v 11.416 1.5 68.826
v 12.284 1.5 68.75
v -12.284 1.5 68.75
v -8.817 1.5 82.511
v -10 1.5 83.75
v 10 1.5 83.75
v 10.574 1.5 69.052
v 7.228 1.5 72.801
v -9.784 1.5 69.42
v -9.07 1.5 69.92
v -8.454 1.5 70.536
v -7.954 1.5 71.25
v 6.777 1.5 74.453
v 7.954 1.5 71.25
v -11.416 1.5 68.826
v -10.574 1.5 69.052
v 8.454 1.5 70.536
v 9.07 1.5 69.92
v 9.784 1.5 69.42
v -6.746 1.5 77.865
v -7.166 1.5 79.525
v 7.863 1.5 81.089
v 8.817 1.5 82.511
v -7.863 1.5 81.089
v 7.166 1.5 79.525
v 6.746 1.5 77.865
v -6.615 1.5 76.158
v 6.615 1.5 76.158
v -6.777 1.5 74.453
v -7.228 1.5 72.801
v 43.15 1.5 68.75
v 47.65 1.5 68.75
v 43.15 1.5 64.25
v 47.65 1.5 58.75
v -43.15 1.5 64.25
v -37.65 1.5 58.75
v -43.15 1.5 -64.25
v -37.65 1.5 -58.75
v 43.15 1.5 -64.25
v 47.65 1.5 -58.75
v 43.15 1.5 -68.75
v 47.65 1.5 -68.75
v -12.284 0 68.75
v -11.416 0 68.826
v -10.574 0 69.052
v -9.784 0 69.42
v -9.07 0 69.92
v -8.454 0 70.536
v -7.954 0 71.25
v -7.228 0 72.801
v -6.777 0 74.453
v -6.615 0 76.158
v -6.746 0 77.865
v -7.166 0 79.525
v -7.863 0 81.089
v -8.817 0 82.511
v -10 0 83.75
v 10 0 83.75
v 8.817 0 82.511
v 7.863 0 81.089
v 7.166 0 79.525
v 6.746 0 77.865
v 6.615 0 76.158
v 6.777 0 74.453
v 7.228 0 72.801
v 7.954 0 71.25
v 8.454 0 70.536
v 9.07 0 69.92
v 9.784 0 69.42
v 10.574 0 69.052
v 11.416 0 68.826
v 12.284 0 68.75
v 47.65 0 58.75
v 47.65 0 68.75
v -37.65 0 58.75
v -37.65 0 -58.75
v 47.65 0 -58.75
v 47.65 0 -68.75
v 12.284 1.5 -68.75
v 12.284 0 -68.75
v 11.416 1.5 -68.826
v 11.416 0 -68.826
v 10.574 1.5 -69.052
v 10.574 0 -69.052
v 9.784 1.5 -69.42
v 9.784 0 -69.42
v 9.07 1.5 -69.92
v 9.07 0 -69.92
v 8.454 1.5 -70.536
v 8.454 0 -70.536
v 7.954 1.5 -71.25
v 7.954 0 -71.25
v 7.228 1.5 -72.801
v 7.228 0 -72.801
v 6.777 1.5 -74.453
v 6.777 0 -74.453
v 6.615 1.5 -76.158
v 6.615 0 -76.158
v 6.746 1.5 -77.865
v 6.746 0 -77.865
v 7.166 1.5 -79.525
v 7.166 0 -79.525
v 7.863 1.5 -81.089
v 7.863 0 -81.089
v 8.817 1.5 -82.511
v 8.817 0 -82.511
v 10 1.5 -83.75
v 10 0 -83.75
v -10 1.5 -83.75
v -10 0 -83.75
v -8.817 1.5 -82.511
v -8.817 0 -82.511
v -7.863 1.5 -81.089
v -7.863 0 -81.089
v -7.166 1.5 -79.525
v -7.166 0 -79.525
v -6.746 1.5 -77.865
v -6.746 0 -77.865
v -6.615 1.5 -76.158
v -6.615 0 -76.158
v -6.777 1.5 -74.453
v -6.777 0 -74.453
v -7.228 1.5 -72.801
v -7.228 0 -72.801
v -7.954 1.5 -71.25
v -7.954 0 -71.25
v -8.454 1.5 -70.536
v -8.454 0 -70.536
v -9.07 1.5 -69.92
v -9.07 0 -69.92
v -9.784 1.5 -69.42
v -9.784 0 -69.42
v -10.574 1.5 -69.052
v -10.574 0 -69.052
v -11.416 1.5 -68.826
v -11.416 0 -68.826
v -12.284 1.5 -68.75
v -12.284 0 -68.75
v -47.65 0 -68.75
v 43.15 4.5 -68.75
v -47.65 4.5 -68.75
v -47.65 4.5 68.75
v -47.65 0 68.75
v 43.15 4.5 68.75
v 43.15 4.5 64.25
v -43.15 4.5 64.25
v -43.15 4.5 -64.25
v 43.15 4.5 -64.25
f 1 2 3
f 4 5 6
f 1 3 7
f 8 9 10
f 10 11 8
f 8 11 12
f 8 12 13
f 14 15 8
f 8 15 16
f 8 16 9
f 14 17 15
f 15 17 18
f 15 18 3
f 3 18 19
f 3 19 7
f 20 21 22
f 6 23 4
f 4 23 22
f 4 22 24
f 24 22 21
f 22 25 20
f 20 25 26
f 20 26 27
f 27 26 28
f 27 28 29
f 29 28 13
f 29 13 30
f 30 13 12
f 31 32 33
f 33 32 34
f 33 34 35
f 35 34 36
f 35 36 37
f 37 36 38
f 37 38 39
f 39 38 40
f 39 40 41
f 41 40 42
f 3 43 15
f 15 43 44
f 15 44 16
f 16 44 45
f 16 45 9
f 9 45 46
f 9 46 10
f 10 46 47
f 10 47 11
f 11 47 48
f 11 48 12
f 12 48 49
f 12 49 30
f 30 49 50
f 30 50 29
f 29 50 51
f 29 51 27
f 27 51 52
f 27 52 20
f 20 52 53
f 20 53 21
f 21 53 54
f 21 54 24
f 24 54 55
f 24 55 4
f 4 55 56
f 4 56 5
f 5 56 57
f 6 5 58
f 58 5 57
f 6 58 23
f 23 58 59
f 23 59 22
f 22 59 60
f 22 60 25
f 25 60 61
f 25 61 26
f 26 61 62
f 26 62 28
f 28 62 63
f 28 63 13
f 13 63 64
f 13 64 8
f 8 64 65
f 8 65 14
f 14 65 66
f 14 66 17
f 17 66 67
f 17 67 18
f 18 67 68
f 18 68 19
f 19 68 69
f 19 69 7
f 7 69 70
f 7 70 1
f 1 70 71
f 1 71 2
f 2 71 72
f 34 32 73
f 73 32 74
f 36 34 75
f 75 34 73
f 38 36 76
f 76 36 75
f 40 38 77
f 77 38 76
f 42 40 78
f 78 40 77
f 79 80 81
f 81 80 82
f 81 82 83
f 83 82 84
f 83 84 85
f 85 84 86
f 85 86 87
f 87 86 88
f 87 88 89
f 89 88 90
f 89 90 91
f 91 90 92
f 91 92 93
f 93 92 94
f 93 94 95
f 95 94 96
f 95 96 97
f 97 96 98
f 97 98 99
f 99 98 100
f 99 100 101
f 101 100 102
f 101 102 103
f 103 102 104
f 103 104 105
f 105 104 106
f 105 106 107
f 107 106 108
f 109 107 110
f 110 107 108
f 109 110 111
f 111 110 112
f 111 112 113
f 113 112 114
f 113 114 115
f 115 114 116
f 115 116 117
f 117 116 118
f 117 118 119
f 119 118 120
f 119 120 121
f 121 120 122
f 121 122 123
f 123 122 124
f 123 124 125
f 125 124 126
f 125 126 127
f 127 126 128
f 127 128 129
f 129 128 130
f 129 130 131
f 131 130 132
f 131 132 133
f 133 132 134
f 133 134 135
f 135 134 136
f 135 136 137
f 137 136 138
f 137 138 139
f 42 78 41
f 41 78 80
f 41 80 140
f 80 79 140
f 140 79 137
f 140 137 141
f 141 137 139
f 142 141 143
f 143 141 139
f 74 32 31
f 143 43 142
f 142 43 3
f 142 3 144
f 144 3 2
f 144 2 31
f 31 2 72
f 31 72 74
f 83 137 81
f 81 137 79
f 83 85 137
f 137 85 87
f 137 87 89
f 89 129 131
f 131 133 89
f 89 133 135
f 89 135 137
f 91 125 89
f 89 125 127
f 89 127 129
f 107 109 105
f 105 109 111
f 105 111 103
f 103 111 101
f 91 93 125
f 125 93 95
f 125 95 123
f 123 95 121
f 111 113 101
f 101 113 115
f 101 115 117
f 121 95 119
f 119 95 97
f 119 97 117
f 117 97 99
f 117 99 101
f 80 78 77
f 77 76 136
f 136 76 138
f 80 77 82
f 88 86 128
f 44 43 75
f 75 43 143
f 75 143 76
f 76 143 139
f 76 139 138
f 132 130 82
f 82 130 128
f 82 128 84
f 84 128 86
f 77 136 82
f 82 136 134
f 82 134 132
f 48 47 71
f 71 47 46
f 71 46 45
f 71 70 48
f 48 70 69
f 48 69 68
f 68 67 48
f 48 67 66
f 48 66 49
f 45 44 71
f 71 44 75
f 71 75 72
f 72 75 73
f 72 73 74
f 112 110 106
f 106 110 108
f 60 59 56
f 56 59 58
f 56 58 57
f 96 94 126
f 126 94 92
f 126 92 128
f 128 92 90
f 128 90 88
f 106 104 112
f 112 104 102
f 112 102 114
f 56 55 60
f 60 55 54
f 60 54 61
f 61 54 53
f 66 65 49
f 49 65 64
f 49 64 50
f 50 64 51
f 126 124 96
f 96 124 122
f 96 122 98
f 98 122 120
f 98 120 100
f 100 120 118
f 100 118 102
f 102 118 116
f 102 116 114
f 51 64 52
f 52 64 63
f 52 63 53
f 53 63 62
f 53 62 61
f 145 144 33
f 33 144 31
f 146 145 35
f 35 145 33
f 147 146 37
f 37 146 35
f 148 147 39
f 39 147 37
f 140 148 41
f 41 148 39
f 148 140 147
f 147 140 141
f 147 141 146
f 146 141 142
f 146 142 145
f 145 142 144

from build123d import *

# Parameters (mm, degrees)
SKETCH1_W           = 10
SKETCH1_H           = 117.5
BOSS_EXTRUDE1_DEPTH = 1.5
BOSS_EXTRUDE2_DEPTH = 3


with BuildPart() as part:
    # Sketch1 → Boss-Extrude1 (new body)
    with BuildSketch(Plane(origin=(0, 0, 0), x_dir=(1, 0, 0), z_dir=(0, 1, 0))):
        with BuildLine():
            ThreePointArc((-7.95412424, -71.25), (-9.784251259, -69.419872981), (-12.284251259, -68.75))
            Line((-12.284251259, -68.75), (-47.65, -68.75))
            Line((-47.65, -68.75), (-47.65, -58.75))
            Line((-47.65, -58.75), (47.65, -58.75))
            Line((47.65, -58.75), (47.65, -68.75))
            Line((47.65, -68.75), (12.284251259, -68.75))
            ThreePointArc((12.284251259, -68.75), (9.784251259, -69.419872981), (7.95412424, -71.25))
            ThreePointArc((7.95412424, -71.25), (6.745685452, -77.865209555), (10, -83.75))
            Line((10, -83.75), (-10, -83.75))
            ThreePointArc((-10, -83.75), (-6.745685452, -77.865209555), (-7.95412424, -71.25))
        make_face()
        with Locations((-42.65, 0)):
            Rectangle(SKETCH1_W, SKETCH1_H)
        with BuildLine():
            ThreePointArc((-7.95412424, 71.25), (-6.745685452, 77.865209555), (-10, 83.75))
            Line((-10, 83.75), (10, 83.75))
            ThreePointArc((10, 83.75), (6.745685452, 77.865209555), (7.95412424, 71.25))
            ThreePointArc((7.95412424, 71.25), (9.784251259, 69.419872981), (12.284251259, 68.75))
            Line((12.284251259, 68.75), (47.65, 68.75))
            Line((47.65, 68.75), (47.65, 58.75))
            Line((47.65, 58.75), (-47.65, 58.75))
            Line((-47.65, 58.75), (-47.65, 68.75))
            Line((-47.65, 68.75), (-12.284251259, 68.75))
            ThreePointArc((-12.284251259, 68.75), (-9.784251259, 69.419872981), (-7.95412424, 71.25))
        make_face()
    extrude(amount=BOSS_EXTRUDE1_DEPTH)

    # Sketch2 → Boss-Extrude2 (add)
    with BuildSketch(Plane(origin=(0, 1.5, 0), x_dir=(1, 0, 0), z_dir=(0, 1, 0))):
        Polygon((-43.15, 64.25), (43.15, 64.25), (43.15, 68.75), (12.284251259, 68.75), (-12.284251259, 68.75), (-47.65, 68.75), (-47.65, -68.75), (-12.284251259, -68.75), (12.284251259, -68.75), (43.15, -68.75), (43.15, -64.25), (-43.15, -64.25), align=None)
    extrude(amount=BOSS_EXTRUDE2_DEPTH)


solid = part.part
